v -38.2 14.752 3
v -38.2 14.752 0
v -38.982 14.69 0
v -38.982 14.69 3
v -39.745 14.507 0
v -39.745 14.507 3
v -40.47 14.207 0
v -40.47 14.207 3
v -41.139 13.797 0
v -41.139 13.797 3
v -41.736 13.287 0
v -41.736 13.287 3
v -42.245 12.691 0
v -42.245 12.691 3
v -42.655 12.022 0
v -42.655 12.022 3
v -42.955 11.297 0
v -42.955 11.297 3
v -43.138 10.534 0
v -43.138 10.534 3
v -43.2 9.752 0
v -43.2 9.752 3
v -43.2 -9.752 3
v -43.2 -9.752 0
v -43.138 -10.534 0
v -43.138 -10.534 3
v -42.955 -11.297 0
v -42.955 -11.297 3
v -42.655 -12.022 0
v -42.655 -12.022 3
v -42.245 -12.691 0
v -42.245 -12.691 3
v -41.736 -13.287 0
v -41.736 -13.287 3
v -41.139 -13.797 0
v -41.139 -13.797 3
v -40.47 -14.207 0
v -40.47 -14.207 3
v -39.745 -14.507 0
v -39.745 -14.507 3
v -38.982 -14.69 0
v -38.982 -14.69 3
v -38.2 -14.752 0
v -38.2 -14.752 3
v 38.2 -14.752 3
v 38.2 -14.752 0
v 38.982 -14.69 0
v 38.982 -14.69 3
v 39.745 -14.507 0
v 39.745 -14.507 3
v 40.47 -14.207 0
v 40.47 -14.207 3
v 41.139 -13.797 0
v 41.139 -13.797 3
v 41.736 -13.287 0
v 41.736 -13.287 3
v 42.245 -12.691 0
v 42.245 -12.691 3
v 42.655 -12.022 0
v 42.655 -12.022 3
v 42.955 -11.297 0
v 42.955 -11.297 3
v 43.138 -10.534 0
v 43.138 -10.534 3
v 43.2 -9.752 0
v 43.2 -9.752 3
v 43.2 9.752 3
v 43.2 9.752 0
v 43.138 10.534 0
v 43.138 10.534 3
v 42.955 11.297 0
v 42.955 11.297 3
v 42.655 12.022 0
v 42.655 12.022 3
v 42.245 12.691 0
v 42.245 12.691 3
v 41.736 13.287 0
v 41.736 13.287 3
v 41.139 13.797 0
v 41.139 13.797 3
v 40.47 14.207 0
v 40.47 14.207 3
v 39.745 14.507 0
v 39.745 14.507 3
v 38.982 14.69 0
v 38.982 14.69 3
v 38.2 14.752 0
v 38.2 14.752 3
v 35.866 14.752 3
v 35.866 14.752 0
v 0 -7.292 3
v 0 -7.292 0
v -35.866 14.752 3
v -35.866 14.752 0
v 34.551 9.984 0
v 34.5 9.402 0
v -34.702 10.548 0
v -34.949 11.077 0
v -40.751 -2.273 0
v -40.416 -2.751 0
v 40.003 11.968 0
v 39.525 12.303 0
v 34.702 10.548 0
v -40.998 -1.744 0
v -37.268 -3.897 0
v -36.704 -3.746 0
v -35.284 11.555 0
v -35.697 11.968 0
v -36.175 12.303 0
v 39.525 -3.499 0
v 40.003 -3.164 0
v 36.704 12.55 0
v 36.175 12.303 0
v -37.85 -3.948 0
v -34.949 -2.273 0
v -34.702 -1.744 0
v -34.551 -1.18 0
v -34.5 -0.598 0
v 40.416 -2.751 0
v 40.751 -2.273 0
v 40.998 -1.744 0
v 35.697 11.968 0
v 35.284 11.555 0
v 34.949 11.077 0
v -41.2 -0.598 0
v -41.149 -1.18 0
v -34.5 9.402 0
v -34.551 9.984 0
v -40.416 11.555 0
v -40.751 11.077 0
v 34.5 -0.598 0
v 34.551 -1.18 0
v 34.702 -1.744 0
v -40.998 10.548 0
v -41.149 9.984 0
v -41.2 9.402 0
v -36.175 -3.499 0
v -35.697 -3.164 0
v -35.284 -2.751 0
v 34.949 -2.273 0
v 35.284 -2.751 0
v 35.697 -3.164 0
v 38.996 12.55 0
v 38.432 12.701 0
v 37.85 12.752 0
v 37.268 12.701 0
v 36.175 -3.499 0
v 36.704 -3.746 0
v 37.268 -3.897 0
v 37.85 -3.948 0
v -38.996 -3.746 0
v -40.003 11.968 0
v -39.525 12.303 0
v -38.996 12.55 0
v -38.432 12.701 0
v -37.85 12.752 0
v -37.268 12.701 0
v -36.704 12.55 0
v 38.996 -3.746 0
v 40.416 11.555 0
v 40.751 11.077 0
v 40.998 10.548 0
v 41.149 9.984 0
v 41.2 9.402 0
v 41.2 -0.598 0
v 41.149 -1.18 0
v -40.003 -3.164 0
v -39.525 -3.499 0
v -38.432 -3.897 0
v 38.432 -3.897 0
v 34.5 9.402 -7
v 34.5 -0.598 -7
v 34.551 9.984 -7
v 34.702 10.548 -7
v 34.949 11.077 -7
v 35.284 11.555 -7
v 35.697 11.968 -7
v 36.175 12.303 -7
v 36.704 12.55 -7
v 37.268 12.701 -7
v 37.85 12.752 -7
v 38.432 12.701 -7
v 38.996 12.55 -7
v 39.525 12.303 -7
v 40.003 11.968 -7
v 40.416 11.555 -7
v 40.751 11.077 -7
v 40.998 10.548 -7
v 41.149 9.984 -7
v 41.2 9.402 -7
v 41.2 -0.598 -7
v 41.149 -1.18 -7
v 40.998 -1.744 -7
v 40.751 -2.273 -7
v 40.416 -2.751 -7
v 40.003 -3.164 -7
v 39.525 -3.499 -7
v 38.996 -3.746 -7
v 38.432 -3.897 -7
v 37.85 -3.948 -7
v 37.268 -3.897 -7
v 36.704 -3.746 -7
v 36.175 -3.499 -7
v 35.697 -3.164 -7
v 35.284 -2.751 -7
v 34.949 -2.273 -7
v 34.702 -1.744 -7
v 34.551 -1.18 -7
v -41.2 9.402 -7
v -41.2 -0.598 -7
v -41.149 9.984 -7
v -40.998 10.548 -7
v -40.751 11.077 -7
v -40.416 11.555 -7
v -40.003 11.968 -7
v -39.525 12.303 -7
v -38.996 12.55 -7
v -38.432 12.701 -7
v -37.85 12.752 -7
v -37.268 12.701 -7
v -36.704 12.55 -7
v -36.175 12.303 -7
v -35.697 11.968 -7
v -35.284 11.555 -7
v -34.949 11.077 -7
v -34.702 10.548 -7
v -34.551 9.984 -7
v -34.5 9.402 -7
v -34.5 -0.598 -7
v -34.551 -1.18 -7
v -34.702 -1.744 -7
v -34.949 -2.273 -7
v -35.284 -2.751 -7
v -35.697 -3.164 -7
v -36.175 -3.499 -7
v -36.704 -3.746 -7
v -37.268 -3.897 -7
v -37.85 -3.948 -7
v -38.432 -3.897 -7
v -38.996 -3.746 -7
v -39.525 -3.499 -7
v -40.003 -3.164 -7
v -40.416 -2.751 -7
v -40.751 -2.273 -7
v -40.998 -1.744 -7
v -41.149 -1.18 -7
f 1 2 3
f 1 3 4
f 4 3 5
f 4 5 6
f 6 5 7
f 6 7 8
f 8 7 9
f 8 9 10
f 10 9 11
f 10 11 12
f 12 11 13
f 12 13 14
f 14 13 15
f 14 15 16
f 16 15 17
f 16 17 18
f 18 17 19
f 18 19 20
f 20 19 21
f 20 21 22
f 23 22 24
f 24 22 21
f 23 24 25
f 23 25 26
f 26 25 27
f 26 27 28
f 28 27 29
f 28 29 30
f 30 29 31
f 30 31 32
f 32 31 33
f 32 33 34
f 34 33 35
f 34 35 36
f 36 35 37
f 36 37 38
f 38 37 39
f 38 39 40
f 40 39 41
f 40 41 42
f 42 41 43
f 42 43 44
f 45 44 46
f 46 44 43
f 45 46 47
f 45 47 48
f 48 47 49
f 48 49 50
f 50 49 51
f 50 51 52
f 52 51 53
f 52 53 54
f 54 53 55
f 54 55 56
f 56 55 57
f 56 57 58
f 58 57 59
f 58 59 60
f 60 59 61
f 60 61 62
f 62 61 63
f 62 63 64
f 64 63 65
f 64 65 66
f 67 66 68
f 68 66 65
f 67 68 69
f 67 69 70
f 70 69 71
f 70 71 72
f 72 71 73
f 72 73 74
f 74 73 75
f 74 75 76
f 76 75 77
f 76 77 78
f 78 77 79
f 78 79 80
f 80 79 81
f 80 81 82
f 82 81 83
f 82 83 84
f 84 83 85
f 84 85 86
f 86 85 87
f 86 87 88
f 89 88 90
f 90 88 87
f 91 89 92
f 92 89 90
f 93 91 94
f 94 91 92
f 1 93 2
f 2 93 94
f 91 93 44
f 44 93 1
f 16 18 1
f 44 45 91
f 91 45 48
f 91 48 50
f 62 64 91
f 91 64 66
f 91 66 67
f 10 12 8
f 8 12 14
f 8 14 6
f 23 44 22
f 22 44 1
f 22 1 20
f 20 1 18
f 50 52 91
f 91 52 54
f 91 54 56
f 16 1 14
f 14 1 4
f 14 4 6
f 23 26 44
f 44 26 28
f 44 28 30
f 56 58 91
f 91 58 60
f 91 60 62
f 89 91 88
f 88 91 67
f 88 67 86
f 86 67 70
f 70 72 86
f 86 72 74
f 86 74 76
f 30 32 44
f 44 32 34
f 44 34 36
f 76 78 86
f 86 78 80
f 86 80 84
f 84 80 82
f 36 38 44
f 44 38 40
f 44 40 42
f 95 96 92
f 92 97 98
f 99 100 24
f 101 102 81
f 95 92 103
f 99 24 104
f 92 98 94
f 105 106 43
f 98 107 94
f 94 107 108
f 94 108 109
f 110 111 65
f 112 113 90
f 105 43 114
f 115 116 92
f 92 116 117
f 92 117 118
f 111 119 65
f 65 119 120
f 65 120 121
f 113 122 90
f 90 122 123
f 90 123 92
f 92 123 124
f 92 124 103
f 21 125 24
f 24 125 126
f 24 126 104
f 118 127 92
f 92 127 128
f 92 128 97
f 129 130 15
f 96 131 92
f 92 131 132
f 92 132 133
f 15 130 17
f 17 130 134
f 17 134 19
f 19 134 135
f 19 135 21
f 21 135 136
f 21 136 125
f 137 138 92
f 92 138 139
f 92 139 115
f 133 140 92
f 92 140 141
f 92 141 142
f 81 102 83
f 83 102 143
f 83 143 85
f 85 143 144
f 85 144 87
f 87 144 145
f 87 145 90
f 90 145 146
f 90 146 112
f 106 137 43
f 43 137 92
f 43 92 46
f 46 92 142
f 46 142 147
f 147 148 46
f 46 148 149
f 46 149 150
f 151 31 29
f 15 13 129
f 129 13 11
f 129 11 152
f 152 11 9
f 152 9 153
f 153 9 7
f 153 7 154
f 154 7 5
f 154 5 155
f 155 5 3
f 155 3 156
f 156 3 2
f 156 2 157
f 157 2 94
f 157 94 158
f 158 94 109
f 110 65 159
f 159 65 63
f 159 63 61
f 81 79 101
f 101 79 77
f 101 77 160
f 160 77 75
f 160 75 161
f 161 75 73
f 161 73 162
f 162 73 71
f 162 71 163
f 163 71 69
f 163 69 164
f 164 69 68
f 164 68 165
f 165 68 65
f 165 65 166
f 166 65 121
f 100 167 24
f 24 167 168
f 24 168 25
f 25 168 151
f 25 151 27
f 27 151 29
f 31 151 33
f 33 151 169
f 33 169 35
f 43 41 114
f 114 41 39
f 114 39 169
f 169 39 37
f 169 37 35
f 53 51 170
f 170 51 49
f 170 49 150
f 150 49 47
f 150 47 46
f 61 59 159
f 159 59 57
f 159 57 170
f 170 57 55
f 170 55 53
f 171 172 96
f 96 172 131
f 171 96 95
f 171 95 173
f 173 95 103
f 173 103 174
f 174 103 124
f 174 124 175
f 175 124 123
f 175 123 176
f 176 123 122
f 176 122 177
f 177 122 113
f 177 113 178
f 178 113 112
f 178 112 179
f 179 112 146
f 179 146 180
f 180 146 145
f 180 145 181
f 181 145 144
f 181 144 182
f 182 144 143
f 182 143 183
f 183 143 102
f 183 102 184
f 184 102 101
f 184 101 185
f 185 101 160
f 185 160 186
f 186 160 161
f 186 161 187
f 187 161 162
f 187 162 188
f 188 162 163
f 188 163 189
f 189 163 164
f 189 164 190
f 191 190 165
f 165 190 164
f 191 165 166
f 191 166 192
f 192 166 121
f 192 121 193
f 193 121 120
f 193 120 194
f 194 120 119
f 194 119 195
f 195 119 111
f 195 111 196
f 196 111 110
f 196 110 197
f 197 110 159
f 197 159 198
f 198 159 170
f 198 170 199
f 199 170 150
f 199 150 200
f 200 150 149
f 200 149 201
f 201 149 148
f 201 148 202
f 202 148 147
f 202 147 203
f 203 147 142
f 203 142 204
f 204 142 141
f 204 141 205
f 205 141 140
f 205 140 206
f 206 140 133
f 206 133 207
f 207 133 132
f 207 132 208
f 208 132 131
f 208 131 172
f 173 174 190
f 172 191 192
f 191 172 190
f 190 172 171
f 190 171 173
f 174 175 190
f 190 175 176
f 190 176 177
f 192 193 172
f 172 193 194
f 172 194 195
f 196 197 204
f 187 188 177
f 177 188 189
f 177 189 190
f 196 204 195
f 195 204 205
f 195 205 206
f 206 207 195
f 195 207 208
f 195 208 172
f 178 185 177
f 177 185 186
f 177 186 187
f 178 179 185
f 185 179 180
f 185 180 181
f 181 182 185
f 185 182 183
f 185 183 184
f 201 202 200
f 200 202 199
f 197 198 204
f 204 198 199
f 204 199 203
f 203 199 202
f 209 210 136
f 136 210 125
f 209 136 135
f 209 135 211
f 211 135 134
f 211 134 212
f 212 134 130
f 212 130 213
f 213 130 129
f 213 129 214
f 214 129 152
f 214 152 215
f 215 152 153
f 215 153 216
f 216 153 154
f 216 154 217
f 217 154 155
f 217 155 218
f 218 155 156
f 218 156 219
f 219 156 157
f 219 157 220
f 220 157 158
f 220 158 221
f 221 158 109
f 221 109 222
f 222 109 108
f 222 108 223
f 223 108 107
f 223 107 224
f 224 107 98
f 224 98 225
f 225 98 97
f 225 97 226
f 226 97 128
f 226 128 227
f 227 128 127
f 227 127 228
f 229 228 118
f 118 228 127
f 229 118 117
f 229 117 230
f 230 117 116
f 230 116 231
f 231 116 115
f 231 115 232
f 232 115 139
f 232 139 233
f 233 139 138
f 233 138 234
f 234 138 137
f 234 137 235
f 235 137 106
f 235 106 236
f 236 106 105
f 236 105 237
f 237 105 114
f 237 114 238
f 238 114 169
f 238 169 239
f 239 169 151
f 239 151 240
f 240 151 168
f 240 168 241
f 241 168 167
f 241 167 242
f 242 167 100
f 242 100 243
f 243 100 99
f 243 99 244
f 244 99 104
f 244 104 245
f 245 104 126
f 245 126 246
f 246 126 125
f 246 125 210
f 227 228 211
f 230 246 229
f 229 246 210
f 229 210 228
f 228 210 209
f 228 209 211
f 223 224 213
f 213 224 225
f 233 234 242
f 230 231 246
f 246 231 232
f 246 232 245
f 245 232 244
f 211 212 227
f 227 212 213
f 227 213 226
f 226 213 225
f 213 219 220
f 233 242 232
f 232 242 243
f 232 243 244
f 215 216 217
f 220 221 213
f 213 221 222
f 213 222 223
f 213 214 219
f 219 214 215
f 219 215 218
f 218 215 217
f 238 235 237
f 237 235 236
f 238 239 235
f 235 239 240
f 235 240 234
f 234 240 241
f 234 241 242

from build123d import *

# Parameters (mm, degrees)
BOSS_EXTRUDE1_DEPTH = 3
BOSS_EXTRUDE2_DEPTH = 7


with BuildPart() as part:
    # Sketch1 → Boss-Extrude1 (new body)
    with BuildSketch(Plane.XY):
        with BuildLine():
            ThreePointArc((-43.2, -9.751954051), (-41.735533906, -13.287487956), (-38.2, -14.751954051))
            Line((-38.2, -14.751954051), (38.2, -14.751954051))
            ThreePointArc((38.2, -14.751954051), (41.735533906, -13.287487956), (43.2, -9.751954051))
            Line((43.2, -9.751954051), (43.2, 9.751954051))
            ThreePointArc((43.2, 9.751954051), (41.735533906, 13.287487956), (38.2, 14.751954051))
            Line((38.2, 14.751954051), (35.865969403, 14.751954051))
            Line((35.865969403, 14.751954051), (0, -7.291716438))
            Line((0, -7.291716438), (-35.865969403, 14.751954051))
            Line((-35.865969403, 14.751954051), (-38.2, 14.751954051))
            ThreePointArc((-38.2, 14.751954051), (-41.735533906, 13.287487956), (-43.2, 9.751954051))
            Line((-43.2, 9.751954051), (-43.2, -9.751954051))
        make_face()
    extrude(amount=BOSS_EXTRUDE1_DEPTH)

    # Sketch1<3> → Boss-Extrude2 (add)
    with BuildSketch(Plane.XY):
        with BuildLine():
            Line((-34.5, -0.598045949), (-34.5, 9.401954051))
            ThreePointArc((-34.5, 9.401954051), (-37.85, 12.751954051), (-41.2, 9.401954051))
            Line((-41.2, 9.401954051), (-41.2, -0.598045949))
            ThreePointArc((-41.2, -0.598045949), (-37.85, -3.948045949), (-34.5, -0.598045949))
        make_face()
        with BuildLine():
            Line((41.2, -0.598045949), (41.2, 9.401954051))
            ThreePointArc((41.2, 9.401954051), (37.85, 12.751954051), (34.5, 9.401954051))
            Line((34.5, 9.401954051), (34.5, -0.598045949))
            ThreePointArc((34.5, -0.598045949), (37.85, -3.948045949), (41.2, -0.598045949))
        make_face()
    extrude(amount=-BOSS_EXTRUDE2_DEPTH)


solid = part.part
